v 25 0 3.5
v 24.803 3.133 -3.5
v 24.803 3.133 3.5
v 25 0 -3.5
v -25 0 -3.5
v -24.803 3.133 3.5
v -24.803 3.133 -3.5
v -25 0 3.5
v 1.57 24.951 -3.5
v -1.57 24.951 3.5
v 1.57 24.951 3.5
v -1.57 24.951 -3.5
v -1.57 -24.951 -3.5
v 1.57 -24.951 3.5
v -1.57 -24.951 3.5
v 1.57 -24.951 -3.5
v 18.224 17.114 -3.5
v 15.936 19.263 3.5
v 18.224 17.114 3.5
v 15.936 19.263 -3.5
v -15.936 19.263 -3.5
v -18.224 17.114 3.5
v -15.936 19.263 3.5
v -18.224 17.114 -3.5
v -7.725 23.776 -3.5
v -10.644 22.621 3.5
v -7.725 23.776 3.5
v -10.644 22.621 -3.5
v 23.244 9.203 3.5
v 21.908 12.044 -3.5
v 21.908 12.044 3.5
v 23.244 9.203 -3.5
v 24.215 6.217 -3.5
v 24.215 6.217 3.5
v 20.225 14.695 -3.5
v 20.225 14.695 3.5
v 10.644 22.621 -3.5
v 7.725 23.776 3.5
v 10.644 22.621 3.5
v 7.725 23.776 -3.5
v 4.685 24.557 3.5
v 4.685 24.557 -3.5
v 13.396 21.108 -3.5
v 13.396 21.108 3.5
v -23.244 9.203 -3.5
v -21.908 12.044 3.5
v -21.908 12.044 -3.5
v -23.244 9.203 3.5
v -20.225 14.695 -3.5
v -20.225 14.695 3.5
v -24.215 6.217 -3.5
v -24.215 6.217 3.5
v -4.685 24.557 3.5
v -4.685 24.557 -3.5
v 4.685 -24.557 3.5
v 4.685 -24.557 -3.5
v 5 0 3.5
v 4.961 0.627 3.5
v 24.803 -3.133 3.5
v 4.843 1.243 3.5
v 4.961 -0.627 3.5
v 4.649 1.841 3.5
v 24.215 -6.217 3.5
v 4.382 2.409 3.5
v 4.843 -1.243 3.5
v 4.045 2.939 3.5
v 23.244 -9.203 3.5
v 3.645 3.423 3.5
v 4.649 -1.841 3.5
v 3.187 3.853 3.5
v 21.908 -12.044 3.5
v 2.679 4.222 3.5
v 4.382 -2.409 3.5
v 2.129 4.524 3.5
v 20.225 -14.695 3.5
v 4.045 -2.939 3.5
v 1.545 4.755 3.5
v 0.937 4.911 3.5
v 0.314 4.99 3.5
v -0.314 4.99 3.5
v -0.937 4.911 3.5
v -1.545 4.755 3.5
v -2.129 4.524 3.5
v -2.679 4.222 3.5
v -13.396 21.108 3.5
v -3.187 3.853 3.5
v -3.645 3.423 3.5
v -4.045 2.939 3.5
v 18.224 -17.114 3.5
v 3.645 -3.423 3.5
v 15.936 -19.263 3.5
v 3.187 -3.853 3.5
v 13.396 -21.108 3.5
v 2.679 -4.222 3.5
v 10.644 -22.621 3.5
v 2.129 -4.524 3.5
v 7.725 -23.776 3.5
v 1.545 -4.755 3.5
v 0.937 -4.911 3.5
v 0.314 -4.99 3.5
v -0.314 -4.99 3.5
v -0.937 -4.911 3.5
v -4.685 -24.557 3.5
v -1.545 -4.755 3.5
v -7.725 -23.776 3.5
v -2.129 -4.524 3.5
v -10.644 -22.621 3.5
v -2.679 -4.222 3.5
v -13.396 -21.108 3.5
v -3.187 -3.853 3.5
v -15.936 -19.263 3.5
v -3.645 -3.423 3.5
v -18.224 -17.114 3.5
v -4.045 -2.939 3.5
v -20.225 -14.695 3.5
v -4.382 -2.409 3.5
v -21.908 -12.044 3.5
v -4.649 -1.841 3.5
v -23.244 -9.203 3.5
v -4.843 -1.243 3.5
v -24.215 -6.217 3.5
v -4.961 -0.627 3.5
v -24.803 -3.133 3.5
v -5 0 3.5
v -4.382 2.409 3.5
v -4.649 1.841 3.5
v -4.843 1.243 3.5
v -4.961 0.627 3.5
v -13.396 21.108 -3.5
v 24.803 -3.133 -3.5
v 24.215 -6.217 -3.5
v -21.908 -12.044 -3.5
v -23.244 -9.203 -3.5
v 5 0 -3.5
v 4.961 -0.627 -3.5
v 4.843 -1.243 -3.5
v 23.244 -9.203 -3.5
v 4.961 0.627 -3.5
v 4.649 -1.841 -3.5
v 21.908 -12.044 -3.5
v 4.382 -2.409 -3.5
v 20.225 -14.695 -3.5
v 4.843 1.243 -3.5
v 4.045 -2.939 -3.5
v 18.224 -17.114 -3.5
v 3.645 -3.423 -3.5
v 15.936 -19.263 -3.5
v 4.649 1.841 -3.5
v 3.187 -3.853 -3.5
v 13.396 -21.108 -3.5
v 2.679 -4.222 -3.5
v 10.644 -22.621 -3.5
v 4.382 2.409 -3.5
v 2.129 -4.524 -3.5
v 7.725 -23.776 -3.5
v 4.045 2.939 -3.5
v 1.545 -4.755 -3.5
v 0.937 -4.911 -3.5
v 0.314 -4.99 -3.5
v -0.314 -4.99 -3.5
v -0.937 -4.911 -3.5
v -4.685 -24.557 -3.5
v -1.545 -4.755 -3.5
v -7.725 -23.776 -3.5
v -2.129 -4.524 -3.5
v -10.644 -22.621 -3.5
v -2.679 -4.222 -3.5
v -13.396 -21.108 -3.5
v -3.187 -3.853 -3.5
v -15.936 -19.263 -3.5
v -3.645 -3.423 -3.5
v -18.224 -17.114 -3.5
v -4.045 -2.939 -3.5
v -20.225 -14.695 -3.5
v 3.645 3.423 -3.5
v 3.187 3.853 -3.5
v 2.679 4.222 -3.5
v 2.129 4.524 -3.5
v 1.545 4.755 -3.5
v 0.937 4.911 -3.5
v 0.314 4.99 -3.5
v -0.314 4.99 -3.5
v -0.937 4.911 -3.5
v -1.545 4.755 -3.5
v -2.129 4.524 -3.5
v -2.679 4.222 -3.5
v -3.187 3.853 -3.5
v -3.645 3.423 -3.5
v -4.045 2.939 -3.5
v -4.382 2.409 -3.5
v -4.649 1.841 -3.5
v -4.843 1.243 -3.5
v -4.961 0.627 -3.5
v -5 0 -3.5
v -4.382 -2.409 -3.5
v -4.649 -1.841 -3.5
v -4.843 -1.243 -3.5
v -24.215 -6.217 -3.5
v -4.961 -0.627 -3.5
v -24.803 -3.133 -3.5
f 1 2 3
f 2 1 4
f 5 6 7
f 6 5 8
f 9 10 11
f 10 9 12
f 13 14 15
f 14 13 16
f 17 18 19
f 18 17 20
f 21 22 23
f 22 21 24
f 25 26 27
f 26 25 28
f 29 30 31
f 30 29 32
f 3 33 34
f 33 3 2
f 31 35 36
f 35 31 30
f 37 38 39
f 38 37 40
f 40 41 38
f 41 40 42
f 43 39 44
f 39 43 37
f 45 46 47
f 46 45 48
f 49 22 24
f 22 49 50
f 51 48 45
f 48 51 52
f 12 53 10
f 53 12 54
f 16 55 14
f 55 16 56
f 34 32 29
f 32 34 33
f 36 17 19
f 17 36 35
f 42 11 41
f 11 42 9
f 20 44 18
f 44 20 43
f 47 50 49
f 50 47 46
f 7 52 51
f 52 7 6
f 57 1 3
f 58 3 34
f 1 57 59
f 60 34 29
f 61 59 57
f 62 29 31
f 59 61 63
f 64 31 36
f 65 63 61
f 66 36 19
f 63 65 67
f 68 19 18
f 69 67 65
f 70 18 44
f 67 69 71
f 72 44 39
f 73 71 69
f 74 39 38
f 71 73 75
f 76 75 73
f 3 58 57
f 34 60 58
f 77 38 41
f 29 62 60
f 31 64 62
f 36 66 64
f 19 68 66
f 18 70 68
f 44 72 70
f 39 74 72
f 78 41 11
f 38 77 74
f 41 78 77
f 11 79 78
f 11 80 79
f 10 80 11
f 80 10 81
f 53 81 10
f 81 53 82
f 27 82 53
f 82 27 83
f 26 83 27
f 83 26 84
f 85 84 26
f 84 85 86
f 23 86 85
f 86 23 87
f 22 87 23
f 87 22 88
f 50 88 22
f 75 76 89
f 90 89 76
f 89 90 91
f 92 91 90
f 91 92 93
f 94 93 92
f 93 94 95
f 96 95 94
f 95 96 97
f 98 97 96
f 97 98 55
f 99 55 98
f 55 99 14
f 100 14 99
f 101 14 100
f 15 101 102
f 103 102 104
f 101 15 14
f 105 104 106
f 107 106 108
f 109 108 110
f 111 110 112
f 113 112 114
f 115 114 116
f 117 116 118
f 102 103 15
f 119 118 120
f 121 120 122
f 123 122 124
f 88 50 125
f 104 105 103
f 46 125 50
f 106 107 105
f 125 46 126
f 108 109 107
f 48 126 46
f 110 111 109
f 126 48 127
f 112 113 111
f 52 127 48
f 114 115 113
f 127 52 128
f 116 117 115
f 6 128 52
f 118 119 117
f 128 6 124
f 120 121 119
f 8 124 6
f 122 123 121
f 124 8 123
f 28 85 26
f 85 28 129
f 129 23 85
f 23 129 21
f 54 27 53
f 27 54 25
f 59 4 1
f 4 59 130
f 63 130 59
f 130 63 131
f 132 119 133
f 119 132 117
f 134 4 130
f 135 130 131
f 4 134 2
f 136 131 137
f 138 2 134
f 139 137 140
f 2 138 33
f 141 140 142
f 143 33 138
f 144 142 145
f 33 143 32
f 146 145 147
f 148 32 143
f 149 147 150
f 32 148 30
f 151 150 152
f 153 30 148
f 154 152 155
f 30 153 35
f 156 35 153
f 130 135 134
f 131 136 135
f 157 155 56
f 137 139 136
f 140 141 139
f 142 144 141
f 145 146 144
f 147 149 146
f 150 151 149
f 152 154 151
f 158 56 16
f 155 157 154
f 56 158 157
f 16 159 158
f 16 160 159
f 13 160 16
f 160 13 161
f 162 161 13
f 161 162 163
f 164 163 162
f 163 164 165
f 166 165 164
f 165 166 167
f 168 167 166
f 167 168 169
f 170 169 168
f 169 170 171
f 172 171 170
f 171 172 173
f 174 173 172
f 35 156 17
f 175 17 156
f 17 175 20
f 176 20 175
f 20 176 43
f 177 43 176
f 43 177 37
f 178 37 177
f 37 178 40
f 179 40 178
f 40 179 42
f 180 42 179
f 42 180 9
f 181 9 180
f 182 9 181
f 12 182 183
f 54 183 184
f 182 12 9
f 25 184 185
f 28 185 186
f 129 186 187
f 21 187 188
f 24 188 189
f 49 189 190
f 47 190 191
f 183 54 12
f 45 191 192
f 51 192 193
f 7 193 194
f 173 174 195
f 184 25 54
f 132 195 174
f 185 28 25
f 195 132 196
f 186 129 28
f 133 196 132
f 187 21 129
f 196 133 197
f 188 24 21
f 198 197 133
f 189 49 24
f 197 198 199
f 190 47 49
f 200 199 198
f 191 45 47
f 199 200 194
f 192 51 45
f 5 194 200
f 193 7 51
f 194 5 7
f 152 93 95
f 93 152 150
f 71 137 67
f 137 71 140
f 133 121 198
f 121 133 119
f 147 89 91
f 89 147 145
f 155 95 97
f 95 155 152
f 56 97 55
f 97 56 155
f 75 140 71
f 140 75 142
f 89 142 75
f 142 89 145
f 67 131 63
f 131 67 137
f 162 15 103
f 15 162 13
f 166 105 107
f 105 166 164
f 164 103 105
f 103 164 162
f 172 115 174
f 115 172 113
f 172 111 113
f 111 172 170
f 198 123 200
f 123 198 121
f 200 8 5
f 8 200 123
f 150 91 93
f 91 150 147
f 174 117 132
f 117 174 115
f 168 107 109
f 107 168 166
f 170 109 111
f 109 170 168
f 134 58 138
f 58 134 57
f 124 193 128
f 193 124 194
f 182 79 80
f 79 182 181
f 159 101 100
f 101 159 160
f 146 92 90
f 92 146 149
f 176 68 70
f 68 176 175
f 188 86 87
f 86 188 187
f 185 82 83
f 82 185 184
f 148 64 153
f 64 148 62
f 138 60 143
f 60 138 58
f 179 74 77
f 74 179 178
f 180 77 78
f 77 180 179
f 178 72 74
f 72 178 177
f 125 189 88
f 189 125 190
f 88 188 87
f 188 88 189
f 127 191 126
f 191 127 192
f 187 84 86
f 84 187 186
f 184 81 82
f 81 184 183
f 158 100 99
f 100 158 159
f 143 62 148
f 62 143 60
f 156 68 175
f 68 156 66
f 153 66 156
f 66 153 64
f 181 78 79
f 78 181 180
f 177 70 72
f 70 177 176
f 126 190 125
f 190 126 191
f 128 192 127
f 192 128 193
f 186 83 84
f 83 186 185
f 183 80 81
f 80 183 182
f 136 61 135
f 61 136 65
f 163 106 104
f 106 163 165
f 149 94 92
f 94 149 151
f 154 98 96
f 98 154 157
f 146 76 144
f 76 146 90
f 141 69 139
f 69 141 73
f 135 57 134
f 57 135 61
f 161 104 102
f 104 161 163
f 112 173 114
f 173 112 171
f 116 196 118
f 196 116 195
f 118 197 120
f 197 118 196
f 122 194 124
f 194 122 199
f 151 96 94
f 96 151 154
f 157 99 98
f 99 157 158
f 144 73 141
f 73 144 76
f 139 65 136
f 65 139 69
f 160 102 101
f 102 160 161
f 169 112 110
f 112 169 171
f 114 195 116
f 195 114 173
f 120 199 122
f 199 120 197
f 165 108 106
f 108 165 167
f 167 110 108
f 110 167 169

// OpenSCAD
$fn = 50;


difference() {
	union() {
		translate(v = [0, 0, -3.5000000000]) {
			cylinder(h = 7, r = 25.0000000000);
		}
	}
	union() {
		translate(v = [0, 0, -100.0000000000]) {
			cylinder(h = 200, r = 5.0000000000);
		}
	}
}
